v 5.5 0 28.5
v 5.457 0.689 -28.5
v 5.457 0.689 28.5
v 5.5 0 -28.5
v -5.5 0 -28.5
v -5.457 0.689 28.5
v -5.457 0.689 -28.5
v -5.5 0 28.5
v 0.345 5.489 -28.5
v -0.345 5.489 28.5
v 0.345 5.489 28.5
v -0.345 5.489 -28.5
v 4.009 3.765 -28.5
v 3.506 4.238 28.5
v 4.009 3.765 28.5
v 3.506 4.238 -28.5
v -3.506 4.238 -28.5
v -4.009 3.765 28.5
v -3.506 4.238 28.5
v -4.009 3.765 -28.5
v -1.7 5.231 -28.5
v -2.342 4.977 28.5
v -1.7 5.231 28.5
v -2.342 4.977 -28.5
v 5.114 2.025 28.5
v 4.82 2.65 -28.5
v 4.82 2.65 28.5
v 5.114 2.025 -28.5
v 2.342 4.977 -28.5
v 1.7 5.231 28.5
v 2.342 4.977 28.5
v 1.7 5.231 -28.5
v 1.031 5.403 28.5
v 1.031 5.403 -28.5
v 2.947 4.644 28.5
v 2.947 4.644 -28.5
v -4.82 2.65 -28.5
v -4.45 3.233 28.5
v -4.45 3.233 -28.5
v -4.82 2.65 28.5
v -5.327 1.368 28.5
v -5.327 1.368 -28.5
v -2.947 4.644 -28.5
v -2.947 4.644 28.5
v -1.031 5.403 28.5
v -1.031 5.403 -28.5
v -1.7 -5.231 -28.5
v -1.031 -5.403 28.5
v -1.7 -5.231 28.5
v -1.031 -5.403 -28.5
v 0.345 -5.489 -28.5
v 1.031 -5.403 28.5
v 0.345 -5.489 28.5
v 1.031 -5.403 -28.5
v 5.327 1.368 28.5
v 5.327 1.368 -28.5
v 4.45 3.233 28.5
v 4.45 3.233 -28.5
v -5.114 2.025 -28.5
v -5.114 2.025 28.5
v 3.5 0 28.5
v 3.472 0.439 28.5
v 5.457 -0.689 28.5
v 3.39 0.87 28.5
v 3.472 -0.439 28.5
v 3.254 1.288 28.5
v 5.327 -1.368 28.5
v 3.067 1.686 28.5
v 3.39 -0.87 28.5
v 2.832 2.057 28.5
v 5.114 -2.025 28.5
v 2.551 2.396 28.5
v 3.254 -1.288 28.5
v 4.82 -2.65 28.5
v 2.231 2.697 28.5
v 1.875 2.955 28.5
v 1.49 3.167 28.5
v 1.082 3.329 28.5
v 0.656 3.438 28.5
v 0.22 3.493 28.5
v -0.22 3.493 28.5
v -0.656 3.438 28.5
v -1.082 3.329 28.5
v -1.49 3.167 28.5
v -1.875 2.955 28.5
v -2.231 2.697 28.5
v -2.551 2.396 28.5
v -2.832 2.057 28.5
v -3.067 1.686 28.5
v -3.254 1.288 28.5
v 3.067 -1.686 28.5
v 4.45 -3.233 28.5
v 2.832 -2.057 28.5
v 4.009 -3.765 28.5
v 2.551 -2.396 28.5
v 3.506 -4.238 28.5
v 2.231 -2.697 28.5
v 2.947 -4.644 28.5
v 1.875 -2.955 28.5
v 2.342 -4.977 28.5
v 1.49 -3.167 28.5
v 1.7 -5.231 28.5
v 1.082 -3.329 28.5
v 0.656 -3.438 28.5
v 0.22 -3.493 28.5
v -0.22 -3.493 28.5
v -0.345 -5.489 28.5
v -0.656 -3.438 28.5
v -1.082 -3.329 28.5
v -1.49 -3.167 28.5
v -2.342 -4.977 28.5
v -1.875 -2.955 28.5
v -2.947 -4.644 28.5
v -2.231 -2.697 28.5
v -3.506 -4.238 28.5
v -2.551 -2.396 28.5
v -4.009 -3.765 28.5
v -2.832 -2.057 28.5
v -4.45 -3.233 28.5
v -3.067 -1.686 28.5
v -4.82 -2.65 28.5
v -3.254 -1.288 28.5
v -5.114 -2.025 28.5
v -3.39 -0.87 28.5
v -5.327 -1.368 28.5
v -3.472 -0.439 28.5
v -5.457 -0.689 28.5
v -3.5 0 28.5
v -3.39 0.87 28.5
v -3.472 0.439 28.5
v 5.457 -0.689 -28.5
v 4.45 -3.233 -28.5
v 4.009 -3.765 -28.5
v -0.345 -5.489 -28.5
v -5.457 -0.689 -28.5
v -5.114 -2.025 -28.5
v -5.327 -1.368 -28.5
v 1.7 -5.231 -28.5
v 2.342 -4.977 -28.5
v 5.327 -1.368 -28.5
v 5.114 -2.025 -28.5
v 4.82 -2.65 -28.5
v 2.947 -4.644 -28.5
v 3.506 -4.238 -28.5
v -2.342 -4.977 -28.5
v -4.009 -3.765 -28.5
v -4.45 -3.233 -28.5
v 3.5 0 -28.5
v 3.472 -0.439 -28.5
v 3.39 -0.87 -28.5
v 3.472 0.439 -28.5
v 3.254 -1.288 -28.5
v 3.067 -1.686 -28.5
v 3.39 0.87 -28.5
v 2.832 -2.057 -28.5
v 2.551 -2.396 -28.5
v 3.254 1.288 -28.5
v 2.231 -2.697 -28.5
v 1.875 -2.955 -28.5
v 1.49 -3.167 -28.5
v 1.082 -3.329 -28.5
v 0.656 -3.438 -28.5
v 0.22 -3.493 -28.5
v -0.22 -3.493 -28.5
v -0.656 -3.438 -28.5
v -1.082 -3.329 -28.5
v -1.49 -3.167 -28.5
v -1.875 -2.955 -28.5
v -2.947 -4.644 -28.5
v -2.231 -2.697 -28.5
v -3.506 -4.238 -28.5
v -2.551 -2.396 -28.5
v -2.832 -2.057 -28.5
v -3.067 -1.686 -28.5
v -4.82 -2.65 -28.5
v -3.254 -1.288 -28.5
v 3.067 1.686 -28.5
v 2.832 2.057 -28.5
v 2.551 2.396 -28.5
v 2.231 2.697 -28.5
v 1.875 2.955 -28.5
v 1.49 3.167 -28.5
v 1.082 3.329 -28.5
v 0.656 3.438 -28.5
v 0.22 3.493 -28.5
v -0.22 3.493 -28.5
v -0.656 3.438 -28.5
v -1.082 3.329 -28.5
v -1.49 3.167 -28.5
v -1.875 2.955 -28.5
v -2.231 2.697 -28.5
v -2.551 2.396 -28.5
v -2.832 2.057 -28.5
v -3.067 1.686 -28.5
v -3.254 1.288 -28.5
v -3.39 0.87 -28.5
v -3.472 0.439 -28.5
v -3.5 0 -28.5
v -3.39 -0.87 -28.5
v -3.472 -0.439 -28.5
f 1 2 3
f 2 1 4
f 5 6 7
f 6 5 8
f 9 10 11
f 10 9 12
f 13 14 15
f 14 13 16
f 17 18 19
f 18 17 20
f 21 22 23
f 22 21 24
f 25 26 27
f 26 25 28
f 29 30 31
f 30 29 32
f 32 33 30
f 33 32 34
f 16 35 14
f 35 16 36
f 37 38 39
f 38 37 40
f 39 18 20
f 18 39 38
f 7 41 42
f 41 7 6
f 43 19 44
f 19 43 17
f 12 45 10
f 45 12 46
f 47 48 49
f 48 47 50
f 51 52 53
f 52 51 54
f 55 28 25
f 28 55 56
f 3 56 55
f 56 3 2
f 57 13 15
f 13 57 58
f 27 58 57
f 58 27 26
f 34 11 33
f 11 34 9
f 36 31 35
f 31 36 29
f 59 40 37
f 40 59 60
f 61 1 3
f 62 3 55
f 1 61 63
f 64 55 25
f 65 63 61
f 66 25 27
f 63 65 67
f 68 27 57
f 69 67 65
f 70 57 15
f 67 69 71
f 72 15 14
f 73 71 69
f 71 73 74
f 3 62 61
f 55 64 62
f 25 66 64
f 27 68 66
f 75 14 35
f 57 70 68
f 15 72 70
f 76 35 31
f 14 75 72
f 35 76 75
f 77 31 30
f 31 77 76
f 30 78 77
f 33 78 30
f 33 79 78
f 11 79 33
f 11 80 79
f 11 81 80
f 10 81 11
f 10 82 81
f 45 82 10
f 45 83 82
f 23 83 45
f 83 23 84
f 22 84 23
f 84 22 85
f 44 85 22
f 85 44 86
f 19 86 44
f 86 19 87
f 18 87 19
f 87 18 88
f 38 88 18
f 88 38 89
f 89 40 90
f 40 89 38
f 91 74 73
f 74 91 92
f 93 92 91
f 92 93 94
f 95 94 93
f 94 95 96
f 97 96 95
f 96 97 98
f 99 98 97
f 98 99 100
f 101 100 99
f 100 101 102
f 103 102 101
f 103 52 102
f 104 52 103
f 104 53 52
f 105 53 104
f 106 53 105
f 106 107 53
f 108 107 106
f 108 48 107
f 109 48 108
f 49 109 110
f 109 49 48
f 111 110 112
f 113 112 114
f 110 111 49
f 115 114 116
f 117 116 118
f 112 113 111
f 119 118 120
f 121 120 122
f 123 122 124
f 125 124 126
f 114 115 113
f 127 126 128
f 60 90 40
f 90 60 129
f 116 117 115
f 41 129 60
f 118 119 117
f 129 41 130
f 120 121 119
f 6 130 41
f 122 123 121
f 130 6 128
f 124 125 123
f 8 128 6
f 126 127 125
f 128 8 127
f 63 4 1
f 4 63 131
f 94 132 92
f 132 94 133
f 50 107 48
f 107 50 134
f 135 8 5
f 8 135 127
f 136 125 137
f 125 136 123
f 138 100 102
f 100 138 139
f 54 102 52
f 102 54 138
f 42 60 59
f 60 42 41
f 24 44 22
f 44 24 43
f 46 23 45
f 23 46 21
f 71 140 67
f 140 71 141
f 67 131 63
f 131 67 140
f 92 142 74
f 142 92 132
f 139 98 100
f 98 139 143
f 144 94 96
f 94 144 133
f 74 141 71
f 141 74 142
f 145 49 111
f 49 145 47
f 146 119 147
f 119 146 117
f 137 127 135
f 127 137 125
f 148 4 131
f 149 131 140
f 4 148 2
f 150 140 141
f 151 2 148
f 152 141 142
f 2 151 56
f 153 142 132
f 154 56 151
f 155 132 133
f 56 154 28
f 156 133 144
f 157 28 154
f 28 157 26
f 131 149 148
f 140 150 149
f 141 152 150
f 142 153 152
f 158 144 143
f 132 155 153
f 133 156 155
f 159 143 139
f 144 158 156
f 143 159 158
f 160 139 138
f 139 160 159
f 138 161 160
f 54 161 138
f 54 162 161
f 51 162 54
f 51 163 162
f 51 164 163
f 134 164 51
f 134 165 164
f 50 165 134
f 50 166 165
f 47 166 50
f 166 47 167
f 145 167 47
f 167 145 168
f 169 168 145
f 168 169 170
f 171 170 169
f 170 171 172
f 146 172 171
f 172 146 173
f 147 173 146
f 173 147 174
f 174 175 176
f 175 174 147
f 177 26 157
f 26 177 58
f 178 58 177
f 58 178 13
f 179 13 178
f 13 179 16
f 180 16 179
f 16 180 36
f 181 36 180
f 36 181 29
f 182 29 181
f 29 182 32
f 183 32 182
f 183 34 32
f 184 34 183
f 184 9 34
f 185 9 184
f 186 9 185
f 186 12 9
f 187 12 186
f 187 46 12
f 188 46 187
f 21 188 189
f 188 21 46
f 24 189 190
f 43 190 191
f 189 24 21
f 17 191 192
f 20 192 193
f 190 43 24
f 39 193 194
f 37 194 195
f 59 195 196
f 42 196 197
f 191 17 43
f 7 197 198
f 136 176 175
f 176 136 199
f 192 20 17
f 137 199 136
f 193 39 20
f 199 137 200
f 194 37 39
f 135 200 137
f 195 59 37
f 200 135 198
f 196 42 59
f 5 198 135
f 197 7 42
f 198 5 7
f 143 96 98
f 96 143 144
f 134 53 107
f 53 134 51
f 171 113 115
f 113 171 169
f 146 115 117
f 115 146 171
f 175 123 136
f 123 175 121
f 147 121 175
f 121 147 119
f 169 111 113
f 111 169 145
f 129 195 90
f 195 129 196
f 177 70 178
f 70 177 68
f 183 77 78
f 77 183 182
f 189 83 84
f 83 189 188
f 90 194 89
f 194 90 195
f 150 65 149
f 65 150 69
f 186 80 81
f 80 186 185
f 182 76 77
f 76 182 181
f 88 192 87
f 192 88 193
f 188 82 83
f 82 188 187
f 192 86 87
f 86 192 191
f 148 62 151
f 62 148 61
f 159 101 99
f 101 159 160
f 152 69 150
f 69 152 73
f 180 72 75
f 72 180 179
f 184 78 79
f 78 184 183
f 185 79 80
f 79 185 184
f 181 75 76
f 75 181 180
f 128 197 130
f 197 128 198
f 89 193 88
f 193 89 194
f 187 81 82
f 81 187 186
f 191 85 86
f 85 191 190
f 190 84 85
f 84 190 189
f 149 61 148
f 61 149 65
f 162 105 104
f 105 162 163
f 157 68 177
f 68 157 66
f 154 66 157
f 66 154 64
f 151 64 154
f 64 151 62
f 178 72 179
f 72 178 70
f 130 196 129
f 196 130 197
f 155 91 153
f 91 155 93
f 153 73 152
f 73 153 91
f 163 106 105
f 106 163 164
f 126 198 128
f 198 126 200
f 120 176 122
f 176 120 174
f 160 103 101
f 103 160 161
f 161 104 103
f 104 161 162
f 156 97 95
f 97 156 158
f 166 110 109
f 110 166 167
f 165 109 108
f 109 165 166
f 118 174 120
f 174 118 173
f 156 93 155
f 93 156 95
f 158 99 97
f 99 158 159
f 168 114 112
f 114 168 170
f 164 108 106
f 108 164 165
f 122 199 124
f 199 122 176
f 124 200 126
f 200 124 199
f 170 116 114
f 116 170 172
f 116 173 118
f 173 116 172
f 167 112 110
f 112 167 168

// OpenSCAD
$fn = 50;


difference() {
	union() {
		translate(v = [0, 0, -28.5000000000]) {
			cylinder(h = 57, r = 5.5000000000);
		}
	}
	union() {
		translate(v = [0, 0, -100.0000000000]) {
			cylinder(h = 200, r = 3.5000000000);
		}
	}
}
